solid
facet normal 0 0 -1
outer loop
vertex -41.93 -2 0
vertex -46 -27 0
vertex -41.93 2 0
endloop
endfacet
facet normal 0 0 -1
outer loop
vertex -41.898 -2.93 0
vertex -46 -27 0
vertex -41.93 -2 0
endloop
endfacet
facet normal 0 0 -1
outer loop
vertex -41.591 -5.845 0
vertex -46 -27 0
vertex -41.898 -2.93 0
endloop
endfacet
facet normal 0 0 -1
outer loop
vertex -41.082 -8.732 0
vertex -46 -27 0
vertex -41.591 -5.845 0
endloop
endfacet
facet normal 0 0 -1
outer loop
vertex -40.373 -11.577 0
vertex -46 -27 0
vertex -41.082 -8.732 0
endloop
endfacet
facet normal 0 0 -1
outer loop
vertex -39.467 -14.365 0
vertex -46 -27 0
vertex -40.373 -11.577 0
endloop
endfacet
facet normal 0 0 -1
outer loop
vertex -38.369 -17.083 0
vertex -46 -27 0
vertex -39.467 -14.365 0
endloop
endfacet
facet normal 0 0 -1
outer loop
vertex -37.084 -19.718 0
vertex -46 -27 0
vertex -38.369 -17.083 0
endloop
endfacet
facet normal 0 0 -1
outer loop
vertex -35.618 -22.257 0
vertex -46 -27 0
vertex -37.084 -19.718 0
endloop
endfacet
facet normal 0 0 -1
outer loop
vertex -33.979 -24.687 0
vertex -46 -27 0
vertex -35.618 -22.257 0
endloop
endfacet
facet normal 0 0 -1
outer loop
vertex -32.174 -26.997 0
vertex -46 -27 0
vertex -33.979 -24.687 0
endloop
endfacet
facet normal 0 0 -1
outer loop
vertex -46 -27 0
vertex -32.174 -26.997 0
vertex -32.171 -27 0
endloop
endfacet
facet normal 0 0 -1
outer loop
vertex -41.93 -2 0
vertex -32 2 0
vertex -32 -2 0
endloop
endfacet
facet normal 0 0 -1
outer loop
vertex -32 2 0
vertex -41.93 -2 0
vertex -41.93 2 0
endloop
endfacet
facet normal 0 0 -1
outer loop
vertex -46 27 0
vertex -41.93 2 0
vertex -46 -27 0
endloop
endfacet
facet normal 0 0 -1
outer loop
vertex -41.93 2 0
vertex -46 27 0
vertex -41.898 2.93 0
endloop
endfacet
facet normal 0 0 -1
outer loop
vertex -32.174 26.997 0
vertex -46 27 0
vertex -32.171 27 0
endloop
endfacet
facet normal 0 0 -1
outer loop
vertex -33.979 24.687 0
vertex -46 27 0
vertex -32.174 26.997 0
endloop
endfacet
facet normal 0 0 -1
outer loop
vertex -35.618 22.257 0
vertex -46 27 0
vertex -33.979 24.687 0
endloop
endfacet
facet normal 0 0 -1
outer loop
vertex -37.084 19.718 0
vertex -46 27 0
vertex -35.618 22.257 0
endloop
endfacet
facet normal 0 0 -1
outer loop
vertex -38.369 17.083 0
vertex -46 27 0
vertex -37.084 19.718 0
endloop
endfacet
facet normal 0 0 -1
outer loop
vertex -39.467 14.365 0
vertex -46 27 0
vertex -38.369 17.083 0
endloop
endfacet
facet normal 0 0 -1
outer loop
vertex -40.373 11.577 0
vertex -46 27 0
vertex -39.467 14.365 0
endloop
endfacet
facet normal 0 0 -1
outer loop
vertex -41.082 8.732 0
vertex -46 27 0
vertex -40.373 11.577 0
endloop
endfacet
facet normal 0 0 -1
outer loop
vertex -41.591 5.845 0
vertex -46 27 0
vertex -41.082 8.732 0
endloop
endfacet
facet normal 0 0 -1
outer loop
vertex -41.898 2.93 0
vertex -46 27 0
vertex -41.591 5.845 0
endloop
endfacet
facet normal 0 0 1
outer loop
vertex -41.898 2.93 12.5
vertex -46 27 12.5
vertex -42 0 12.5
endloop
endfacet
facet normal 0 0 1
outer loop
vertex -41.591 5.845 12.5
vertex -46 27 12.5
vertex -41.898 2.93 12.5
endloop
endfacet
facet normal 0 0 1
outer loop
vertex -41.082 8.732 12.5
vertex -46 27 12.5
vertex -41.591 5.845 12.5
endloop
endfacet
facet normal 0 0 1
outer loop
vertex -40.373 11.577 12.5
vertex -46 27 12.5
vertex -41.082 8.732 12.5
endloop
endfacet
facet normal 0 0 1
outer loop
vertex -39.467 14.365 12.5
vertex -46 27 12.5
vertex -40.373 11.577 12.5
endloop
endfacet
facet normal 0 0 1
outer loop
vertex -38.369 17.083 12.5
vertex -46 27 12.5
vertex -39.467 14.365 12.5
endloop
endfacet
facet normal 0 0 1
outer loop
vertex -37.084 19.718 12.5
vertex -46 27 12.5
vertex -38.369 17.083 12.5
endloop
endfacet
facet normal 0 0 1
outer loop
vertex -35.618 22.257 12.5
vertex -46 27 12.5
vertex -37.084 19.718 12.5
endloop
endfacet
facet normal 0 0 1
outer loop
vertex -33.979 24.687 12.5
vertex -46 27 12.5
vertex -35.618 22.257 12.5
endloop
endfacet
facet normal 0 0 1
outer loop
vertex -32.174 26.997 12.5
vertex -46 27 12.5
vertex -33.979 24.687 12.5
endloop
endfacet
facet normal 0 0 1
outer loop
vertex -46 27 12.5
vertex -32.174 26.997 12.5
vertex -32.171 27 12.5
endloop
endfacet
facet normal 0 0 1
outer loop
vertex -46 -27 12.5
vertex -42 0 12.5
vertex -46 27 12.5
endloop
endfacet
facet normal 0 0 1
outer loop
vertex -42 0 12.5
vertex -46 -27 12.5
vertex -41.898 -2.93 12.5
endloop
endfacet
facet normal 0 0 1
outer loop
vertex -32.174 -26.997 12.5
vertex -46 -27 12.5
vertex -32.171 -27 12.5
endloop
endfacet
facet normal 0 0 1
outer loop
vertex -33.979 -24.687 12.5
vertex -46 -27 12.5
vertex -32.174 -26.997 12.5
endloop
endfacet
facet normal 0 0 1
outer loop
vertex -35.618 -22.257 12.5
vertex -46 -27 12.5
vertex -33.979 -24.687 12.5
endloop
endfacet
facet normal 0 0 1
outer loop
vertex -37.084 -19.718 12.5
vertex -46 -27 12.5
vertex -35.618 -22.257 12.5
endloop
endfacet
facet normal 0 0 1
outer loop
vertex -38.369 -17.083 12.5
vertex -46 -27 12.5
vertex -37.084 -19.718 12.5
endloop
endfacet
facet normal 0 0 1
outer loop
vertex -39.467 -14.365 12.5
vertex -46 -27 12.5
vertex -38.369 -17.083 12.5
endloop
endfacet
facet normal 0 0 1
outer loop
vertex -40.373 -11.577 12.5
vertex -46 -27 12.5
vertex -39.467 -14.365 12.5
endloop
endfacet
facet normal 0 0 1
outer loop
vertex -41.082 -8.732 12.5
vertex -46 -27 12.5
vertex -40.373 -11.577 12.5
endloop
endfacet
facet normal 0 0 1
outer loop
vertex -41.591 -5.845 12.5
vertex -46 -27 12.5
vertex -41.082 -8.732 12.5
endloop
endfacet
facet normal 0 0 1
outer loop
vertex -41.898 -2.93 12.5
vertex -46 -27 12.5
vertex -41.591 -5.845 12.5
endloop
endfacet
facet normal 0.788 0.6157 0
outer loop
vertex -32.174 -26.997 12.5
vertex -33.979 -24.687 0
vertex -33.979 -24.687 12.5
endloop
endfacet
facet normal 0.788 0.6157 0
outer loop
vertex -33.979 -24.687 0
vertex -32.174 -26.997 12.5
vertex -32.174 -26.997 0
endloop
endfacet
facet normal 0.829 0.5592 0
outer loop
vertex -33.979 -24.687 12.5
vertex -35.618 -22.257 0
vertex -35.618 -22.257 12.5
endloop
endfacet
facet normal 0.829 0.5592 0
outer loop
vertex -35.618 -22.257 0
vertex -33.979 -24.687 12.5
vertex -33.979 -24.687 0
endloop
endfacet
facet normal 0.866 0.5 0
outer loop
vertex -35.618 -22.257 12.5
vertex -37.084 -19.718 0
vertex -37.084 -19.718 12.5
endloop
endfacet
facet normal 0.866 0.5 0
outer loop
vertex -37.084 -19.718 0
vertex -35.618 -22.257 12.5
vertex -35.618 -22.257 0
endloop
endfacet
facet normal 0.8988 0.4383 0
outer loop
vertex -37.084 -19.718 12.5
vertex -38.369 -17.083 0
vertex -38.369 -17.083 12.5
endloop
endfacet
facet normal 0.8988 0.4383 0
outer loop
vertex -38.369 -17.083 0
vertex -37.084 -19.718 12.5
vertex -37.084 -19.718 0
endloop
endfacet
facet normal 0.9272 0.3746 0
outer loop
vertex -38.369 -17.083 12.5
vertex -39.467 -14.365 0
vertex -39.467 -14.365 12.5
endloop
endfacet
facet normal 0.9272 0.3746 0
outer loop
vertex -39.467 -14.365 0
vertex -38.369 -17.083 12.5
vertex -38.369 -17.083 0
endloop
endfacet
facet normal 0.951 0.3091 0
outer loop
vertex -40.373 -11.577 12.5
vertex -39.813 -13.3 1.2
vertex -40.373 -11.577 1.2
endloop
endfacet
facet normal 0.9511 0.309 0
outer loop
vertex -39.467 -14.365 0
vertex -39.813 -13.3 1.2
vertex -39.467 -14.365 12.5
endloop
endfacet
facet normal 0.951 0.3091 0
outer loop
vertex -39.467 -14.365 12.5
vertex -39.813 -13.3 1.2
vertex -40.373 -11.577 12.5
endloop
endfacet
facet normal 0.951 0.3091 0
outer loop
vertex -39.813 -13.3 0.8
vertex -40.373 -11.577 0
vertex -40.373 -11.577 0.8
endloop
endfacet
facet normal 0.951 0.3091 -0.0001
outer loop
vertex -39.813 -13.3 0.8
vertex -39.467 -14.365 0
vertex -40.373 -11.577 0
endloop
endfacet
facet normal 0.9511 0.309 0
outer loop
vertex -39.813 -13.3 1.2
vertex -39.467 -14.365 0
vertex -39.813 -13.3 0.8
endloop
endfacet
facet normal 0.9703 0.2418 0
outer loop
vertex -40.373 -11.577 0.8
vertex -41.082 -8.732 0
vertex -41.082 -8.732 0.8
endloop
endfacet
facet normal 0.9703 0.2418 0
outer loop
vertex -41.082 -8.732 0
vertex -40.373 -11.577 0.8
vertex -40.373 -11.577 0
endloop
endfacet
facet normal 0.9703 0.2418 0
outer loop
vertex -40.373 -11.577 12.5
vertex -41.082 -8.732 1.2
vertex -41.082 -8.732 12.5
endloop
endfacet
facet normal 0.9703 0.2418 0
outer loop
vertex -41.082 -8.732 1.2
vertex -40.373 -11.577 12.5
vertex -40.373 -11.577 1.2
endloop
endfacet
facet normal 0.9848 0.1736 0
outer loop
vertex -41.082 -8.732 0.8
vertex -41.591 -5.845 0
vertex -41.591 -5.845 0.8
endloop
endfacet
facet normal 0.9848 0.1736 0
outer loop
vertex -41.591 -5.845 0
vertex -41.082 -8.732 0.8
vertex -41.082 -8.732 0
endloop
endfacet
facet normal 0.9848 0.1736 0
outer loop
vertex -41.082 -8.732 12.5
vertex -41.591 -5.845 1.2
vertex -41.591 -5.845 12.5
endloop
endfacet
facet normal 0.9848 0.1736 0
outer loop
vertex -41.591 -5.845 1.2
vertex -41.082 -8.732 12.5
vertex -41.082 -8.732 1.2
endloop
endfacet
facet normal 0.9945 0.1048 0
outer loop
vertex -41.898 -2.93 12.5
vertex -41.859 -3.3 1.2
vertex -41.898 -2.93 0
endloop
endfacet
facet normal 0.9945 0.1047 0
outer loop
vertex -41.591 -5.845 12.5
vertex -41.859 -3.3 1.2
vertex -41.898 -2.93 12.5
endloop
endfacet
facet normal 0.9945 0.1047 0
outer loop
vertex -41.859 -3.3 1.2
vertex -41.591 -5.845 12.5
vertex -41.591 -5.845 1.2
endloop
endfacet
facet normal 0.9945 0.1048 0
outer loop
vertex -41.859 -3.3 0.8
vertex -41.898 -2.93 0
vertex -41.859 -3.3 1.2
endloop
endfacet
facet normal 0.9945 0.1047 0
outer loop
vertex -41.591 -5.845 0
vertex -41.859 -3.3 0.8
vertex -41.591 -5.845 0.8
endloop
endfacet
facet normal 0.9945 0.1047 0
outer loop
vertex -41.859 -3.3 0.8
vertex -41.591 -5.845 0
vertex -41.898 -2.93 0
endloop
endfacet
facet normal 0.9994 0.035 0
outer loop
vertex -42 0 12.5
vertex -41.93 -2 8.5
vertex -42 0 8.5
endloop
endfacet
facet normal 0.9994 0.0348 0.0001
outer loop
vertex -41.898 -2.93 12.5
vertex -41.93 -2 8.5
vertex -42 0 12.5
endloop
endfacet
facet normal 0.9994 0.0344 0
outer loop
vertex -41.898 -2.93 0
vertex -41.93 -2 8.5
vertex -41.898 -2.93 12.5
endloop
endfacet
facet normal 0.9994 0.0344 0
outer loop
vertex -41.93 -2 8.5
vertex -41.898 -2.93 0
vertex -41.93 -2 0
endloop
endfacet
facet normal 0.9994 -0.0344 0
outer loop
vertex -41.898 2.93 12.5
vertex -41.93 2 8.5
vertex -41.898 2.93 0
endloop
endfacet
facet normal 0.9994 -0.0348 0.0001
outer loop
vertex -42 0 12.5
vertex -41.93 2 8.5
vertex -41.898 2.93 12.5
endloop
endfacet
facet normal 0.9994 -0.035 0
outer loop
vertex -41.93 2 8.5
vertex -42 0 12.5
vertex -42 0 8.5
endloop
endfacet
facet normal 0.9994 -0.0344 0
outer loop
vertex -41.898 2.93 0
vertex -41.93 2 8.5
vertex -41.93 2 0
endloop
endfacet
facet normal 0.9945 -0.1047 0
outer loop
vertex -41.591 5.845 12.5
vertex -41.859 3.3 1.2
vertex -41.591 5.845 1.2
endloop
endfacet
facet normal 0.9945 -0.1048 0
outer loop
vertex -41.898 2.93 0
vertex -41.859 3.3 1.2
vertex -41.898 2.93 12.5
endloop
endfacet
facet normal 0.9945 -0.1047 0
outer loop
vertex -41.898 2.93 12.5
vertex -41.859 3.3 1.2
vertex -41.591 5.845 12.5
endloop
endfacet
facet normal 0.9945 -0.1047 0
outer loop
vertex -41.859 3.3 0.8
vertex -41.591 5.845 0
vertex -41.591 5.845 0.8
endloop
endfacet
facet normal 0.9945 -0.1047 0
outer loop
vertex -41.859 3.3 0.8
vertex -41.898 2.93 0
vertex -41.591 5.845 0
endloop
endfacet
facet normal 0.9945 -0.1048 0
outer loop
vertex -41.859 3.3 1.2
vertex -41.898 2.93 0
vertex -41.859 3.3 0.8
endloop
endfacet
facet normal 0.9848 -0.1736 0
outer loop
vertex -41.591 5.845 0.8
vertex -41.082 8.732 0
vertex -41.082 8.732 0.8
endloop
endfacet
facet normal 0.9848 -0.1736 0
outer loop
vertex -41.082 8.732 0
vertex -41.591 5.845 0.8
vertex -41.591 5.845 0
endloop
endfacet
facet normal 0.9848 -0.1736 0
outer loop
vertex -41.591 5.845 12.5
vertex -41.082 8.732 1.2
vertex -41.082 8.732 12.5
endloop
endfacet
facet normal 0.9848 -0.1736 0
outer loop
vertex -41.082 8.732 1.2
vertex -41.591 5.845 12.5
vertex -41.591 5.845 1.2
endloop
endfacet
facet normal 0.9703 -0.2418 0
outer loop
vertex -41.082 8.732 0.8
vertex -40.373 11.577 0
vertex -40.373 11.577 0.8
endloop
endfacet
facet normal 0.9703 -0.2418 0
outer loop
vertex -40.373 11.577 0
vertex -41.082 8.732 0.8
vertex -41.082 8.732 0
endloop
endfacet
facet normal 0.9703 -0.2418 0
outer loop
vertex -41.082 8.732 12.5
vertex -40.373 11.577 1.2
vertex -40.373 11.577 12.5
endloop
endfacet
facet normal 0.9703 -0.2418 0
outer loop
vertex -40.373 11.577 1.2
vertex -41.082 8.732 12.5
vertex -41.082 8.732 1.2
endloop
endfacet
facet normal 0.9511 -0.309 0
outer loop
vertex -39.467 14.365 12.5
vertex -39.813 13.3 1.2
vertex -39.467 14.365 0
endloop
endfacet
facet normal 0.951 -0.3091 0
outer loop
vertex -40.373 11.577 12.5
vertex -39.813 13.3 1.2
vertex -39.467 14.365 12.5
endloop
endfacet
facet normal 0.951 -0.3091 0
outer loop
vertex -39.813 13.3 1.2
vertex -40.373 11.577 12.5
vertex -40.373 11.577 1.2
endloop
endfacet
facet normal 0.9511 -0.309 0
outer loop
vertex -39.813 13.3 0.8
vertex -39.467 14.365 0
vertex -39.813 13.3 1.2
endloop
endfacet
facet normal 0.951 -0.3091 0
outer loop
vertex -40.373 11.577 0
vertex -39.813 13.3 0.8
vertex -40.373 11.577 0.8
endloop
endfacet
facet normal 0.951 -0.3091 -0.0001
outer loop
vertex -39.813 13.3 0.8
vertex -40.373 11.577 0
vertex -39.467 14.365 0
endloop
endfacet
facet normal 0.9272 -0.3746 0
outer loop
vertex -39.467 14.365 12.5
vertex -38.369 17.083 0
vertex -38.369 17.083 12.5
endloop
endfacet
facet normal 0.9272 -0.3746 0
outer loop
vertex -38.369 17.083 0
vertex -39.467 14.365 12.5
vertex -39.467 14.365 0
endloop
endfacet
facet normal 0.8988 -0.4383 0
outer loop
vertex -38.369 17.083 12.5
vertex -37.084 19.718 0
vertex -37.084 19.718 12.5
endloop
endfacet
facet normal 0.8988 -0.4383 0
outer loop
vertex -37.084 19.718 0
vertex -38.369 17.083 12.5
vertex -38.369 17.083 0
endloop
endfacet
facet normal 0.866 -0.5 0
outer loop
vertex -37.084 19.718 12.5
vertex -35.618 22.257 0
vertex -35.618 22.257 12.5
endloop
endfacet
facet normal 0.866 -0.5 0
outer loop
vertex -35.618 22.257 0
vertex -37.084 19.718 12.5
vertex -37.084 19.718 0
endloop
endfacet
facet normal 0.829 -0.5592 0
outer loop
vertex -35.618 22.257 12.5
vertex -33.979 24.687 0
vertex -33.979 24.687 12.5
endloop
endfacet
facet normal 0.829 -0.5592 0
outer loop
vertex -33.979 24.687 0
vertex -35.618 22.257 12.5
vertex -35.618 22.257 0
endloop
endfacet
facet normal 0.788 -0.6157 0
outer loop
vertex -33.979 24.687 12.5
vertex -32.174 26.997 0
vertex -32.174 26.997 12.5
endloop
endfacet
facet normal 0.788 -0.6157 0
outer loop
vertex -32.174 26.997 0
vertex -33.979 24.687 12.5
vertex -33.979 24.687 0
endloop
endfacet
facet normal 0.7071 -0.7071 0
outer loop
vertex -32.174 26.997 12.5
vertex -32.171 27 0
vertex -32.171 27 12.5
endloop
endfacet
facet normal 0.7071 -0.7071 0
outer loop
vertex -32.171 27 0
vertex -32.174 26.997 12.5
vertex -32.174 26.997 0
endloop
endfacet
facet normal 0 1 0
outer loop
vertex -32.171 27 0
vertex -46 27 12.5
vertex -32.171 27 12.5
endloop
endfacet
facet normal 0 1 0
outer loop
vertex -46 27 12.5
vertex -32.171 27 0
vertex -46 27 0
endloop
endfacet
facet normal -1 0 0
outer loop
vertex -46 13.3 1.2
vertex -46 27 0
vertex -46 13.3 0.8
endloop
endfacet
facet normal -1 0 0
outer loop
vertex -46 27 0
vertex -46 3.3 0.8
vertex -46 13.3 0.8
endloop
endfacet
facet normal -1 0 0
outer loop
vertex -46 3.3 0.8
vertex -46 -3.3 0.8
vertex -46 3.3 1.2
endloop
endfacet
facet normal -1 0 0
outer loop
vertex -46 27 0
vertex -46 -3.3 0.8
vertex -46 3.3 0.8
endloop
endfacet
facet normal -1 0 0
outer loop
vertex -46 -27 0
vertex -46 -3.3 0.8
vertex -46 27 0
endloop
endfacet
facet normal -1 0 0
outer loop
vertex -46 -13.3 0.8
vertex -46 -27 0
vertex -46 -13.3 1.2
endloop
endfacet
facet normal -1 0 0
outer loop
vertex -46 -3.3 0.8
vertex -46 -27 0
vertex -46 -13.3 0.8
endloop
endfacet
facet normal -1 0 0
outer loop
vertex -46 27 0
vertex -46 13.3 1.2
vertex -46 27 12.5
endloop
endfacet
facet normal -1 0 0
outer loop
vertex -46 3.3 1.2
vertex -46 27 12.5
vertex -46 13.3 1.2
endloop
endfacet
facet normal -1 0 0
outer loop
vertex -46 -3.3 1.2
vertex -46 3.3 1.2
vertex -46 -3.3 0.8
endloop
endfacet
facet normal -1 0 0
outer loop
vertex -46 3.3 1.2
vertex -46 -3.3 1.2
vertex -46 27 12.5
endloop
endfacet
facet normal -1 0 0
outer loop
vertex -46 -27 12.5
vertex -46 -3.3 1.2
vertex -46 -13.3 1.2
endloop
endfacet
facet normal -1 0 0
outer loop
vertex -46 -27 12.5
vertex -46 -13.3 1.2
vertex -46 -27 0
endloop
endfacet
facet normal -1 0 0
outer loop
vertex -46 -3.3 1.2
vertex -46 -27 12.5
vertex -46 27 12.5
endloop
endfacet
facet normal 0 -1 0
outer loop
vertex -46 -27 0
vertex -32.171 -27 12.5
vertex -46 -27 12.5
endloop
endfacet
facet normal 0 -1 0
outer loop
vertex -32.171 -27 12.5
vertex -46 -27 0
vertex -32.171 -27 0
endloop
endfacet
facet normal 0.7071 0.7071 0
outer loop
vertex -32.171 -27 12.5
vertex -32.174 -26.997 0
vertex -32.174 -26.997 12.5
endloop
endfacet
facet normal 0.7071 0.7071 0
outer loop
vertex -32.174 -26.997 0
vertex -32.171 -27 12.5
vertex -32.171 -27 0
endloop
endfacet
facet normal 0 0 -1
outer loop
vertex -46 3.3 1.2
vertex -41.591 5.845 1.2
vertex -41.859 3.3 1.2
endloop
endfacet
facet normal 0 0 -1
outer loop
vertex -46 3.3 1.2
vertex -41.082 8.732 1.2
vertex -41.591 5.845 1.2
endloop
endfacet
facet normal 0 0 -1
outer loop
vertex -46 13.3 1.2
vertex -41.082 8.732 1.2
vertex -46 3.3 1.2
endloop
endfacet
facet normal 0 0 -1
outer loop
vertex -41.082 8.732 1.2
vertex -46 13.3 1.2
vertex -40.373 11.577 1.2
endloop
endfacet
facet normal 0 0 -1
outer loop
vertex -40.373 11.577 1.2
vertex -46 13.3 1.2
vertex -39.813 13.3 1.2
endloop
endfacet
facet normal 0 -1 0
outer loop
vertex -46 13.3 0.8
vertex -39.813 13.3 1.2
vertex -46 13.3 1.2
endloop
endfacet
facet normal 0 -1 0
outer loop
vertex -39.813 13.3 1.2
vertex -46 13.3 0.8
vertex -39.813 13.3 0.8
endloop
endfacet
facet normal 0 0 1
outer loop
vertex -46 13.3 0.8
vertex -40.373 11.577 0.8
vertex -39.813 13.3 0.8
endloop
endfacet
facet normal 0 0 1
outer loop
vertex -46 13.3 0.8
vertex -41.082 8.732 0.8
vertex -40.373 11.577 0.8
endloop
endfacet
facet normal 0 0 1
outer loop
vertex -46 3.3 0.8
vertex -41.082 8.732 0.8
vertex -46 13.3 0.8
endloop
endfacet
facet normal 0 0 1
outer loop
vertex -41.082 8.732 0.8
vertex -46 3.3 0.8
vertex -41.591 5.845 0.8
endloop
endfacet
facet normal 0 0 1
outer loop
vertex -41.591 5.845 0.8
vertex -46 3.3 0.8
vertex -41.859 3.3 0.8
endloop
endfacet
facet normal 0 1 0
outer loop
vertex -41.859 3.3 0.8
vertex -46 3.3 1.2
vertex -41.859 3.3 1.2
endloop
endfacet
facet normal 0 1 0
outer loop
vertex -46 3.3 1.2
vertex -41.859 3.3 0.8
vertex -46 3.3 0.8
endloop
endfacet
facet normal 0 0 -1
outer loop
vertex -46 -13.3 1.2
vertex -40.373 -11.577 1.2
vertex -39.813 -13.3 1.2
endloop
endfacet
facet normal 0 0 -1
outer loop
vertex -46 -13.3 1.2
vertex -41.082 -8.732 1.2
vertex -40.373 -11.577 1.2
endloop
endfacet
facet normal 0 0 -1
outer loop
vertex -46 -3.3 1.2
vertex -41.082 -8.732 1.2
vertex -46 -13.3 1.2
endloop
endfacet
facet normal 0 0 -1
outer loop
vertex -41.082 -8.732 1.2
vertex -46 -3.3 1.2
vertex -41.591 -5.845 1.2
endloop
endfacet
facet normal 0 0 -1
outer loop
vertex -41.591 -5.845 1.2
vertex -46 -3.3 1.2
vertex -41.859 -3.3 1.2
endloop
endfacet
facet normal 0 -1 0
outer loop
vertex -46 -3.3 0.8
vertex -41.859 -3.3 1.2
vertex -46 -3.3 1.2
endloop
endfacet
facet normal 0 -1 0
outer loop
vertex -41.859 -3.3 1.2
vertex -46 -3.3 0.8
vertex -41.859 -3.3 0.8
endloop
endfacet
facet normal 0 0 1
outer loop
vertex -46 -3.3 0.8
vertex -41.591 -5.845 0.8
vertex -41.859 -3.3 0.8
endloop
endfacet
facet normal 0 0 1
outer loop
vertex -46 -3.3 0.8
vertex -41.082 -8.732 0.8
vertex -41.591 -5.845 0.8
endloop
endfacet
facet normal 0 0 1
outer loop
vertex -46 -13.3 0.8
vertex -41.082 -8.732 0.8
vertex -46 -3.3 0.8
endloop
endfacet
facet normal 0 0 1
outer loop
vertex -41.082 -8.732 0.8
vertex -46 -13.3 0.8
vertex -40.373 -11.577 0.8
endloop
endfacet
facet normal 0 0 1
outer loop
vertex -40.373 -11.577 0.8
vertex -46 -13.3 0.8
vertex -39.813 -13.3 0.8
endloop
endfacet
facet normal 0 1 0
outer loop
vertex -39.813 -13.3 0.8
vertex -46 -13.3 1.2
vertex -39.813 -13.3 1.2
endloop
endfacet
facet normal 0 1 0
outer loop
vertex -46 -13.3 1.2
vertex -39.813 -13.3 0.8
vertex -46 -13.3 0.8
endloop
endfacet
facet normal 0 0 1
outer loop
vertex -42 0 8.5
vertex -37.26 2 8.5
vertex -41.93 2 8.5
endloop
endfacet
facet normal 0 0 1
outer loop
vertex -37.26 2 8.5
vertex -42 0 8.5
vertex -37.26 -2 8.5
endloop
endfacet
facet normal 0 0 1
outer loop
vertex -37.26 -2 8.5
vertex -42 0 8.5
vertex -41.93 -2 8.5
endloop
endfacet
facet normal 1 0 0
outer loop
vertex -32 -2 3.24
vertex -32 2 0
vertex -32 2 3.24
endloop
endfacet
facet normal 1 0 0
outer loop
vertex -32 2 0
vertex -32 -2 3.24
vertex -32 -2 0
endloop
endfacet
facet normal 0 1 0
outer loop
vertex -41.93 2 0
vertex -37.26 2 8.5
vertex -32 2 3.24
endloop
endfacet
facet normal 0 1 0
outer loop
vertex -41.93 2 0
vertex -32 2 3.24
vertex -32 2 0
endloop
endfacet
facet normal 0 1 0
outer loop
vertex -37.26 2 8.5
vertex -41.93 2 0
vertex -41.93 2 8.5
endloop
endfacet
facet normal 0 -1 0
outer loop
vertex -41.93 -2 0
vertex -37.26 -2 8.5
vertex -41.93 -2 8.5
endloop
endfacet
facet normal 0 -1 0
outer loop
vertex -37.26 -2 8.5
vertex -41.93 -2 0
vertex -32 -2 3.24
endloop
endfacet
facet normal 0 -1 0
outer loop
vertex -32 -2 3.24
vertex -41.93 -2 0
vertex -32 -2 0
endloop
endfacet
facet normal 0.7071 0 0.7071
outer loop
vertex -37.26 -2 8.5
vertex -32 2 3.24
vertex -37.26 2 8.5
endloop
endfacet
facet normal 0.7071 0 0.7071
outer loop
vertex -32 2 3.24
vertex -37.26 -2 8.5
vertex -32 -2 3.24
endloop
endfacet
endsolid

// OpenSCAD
loop_d = 8.5;

robot_d = 84;
th = 4;
$fn = 90;

module frame() {
    difference() {
        square([robot_d+2*th,robot_d-30], center=true);
        circle(d=robot_d);
    
        translate([0,-robot_d/2]) square([robot_d/2+th,robot_d]);
    }
}

difference() {
    linear_extrude(height=12.5) frame();
    
    translate([-robot_d/2,8.3,1]) #cube([10,10,0.4], center=true);
    translate([-robot_d/2,-8.3,1]) #cube([10,10,0.4], center=true);
}


translate([-robot_d/2+10/2,0,8.5/2]) difference() {
    cube([10,4,8.5], center=true);
    #translate([5,0,5]) rotate([0,45]) cube([10,4,8.5], center=true);
}
